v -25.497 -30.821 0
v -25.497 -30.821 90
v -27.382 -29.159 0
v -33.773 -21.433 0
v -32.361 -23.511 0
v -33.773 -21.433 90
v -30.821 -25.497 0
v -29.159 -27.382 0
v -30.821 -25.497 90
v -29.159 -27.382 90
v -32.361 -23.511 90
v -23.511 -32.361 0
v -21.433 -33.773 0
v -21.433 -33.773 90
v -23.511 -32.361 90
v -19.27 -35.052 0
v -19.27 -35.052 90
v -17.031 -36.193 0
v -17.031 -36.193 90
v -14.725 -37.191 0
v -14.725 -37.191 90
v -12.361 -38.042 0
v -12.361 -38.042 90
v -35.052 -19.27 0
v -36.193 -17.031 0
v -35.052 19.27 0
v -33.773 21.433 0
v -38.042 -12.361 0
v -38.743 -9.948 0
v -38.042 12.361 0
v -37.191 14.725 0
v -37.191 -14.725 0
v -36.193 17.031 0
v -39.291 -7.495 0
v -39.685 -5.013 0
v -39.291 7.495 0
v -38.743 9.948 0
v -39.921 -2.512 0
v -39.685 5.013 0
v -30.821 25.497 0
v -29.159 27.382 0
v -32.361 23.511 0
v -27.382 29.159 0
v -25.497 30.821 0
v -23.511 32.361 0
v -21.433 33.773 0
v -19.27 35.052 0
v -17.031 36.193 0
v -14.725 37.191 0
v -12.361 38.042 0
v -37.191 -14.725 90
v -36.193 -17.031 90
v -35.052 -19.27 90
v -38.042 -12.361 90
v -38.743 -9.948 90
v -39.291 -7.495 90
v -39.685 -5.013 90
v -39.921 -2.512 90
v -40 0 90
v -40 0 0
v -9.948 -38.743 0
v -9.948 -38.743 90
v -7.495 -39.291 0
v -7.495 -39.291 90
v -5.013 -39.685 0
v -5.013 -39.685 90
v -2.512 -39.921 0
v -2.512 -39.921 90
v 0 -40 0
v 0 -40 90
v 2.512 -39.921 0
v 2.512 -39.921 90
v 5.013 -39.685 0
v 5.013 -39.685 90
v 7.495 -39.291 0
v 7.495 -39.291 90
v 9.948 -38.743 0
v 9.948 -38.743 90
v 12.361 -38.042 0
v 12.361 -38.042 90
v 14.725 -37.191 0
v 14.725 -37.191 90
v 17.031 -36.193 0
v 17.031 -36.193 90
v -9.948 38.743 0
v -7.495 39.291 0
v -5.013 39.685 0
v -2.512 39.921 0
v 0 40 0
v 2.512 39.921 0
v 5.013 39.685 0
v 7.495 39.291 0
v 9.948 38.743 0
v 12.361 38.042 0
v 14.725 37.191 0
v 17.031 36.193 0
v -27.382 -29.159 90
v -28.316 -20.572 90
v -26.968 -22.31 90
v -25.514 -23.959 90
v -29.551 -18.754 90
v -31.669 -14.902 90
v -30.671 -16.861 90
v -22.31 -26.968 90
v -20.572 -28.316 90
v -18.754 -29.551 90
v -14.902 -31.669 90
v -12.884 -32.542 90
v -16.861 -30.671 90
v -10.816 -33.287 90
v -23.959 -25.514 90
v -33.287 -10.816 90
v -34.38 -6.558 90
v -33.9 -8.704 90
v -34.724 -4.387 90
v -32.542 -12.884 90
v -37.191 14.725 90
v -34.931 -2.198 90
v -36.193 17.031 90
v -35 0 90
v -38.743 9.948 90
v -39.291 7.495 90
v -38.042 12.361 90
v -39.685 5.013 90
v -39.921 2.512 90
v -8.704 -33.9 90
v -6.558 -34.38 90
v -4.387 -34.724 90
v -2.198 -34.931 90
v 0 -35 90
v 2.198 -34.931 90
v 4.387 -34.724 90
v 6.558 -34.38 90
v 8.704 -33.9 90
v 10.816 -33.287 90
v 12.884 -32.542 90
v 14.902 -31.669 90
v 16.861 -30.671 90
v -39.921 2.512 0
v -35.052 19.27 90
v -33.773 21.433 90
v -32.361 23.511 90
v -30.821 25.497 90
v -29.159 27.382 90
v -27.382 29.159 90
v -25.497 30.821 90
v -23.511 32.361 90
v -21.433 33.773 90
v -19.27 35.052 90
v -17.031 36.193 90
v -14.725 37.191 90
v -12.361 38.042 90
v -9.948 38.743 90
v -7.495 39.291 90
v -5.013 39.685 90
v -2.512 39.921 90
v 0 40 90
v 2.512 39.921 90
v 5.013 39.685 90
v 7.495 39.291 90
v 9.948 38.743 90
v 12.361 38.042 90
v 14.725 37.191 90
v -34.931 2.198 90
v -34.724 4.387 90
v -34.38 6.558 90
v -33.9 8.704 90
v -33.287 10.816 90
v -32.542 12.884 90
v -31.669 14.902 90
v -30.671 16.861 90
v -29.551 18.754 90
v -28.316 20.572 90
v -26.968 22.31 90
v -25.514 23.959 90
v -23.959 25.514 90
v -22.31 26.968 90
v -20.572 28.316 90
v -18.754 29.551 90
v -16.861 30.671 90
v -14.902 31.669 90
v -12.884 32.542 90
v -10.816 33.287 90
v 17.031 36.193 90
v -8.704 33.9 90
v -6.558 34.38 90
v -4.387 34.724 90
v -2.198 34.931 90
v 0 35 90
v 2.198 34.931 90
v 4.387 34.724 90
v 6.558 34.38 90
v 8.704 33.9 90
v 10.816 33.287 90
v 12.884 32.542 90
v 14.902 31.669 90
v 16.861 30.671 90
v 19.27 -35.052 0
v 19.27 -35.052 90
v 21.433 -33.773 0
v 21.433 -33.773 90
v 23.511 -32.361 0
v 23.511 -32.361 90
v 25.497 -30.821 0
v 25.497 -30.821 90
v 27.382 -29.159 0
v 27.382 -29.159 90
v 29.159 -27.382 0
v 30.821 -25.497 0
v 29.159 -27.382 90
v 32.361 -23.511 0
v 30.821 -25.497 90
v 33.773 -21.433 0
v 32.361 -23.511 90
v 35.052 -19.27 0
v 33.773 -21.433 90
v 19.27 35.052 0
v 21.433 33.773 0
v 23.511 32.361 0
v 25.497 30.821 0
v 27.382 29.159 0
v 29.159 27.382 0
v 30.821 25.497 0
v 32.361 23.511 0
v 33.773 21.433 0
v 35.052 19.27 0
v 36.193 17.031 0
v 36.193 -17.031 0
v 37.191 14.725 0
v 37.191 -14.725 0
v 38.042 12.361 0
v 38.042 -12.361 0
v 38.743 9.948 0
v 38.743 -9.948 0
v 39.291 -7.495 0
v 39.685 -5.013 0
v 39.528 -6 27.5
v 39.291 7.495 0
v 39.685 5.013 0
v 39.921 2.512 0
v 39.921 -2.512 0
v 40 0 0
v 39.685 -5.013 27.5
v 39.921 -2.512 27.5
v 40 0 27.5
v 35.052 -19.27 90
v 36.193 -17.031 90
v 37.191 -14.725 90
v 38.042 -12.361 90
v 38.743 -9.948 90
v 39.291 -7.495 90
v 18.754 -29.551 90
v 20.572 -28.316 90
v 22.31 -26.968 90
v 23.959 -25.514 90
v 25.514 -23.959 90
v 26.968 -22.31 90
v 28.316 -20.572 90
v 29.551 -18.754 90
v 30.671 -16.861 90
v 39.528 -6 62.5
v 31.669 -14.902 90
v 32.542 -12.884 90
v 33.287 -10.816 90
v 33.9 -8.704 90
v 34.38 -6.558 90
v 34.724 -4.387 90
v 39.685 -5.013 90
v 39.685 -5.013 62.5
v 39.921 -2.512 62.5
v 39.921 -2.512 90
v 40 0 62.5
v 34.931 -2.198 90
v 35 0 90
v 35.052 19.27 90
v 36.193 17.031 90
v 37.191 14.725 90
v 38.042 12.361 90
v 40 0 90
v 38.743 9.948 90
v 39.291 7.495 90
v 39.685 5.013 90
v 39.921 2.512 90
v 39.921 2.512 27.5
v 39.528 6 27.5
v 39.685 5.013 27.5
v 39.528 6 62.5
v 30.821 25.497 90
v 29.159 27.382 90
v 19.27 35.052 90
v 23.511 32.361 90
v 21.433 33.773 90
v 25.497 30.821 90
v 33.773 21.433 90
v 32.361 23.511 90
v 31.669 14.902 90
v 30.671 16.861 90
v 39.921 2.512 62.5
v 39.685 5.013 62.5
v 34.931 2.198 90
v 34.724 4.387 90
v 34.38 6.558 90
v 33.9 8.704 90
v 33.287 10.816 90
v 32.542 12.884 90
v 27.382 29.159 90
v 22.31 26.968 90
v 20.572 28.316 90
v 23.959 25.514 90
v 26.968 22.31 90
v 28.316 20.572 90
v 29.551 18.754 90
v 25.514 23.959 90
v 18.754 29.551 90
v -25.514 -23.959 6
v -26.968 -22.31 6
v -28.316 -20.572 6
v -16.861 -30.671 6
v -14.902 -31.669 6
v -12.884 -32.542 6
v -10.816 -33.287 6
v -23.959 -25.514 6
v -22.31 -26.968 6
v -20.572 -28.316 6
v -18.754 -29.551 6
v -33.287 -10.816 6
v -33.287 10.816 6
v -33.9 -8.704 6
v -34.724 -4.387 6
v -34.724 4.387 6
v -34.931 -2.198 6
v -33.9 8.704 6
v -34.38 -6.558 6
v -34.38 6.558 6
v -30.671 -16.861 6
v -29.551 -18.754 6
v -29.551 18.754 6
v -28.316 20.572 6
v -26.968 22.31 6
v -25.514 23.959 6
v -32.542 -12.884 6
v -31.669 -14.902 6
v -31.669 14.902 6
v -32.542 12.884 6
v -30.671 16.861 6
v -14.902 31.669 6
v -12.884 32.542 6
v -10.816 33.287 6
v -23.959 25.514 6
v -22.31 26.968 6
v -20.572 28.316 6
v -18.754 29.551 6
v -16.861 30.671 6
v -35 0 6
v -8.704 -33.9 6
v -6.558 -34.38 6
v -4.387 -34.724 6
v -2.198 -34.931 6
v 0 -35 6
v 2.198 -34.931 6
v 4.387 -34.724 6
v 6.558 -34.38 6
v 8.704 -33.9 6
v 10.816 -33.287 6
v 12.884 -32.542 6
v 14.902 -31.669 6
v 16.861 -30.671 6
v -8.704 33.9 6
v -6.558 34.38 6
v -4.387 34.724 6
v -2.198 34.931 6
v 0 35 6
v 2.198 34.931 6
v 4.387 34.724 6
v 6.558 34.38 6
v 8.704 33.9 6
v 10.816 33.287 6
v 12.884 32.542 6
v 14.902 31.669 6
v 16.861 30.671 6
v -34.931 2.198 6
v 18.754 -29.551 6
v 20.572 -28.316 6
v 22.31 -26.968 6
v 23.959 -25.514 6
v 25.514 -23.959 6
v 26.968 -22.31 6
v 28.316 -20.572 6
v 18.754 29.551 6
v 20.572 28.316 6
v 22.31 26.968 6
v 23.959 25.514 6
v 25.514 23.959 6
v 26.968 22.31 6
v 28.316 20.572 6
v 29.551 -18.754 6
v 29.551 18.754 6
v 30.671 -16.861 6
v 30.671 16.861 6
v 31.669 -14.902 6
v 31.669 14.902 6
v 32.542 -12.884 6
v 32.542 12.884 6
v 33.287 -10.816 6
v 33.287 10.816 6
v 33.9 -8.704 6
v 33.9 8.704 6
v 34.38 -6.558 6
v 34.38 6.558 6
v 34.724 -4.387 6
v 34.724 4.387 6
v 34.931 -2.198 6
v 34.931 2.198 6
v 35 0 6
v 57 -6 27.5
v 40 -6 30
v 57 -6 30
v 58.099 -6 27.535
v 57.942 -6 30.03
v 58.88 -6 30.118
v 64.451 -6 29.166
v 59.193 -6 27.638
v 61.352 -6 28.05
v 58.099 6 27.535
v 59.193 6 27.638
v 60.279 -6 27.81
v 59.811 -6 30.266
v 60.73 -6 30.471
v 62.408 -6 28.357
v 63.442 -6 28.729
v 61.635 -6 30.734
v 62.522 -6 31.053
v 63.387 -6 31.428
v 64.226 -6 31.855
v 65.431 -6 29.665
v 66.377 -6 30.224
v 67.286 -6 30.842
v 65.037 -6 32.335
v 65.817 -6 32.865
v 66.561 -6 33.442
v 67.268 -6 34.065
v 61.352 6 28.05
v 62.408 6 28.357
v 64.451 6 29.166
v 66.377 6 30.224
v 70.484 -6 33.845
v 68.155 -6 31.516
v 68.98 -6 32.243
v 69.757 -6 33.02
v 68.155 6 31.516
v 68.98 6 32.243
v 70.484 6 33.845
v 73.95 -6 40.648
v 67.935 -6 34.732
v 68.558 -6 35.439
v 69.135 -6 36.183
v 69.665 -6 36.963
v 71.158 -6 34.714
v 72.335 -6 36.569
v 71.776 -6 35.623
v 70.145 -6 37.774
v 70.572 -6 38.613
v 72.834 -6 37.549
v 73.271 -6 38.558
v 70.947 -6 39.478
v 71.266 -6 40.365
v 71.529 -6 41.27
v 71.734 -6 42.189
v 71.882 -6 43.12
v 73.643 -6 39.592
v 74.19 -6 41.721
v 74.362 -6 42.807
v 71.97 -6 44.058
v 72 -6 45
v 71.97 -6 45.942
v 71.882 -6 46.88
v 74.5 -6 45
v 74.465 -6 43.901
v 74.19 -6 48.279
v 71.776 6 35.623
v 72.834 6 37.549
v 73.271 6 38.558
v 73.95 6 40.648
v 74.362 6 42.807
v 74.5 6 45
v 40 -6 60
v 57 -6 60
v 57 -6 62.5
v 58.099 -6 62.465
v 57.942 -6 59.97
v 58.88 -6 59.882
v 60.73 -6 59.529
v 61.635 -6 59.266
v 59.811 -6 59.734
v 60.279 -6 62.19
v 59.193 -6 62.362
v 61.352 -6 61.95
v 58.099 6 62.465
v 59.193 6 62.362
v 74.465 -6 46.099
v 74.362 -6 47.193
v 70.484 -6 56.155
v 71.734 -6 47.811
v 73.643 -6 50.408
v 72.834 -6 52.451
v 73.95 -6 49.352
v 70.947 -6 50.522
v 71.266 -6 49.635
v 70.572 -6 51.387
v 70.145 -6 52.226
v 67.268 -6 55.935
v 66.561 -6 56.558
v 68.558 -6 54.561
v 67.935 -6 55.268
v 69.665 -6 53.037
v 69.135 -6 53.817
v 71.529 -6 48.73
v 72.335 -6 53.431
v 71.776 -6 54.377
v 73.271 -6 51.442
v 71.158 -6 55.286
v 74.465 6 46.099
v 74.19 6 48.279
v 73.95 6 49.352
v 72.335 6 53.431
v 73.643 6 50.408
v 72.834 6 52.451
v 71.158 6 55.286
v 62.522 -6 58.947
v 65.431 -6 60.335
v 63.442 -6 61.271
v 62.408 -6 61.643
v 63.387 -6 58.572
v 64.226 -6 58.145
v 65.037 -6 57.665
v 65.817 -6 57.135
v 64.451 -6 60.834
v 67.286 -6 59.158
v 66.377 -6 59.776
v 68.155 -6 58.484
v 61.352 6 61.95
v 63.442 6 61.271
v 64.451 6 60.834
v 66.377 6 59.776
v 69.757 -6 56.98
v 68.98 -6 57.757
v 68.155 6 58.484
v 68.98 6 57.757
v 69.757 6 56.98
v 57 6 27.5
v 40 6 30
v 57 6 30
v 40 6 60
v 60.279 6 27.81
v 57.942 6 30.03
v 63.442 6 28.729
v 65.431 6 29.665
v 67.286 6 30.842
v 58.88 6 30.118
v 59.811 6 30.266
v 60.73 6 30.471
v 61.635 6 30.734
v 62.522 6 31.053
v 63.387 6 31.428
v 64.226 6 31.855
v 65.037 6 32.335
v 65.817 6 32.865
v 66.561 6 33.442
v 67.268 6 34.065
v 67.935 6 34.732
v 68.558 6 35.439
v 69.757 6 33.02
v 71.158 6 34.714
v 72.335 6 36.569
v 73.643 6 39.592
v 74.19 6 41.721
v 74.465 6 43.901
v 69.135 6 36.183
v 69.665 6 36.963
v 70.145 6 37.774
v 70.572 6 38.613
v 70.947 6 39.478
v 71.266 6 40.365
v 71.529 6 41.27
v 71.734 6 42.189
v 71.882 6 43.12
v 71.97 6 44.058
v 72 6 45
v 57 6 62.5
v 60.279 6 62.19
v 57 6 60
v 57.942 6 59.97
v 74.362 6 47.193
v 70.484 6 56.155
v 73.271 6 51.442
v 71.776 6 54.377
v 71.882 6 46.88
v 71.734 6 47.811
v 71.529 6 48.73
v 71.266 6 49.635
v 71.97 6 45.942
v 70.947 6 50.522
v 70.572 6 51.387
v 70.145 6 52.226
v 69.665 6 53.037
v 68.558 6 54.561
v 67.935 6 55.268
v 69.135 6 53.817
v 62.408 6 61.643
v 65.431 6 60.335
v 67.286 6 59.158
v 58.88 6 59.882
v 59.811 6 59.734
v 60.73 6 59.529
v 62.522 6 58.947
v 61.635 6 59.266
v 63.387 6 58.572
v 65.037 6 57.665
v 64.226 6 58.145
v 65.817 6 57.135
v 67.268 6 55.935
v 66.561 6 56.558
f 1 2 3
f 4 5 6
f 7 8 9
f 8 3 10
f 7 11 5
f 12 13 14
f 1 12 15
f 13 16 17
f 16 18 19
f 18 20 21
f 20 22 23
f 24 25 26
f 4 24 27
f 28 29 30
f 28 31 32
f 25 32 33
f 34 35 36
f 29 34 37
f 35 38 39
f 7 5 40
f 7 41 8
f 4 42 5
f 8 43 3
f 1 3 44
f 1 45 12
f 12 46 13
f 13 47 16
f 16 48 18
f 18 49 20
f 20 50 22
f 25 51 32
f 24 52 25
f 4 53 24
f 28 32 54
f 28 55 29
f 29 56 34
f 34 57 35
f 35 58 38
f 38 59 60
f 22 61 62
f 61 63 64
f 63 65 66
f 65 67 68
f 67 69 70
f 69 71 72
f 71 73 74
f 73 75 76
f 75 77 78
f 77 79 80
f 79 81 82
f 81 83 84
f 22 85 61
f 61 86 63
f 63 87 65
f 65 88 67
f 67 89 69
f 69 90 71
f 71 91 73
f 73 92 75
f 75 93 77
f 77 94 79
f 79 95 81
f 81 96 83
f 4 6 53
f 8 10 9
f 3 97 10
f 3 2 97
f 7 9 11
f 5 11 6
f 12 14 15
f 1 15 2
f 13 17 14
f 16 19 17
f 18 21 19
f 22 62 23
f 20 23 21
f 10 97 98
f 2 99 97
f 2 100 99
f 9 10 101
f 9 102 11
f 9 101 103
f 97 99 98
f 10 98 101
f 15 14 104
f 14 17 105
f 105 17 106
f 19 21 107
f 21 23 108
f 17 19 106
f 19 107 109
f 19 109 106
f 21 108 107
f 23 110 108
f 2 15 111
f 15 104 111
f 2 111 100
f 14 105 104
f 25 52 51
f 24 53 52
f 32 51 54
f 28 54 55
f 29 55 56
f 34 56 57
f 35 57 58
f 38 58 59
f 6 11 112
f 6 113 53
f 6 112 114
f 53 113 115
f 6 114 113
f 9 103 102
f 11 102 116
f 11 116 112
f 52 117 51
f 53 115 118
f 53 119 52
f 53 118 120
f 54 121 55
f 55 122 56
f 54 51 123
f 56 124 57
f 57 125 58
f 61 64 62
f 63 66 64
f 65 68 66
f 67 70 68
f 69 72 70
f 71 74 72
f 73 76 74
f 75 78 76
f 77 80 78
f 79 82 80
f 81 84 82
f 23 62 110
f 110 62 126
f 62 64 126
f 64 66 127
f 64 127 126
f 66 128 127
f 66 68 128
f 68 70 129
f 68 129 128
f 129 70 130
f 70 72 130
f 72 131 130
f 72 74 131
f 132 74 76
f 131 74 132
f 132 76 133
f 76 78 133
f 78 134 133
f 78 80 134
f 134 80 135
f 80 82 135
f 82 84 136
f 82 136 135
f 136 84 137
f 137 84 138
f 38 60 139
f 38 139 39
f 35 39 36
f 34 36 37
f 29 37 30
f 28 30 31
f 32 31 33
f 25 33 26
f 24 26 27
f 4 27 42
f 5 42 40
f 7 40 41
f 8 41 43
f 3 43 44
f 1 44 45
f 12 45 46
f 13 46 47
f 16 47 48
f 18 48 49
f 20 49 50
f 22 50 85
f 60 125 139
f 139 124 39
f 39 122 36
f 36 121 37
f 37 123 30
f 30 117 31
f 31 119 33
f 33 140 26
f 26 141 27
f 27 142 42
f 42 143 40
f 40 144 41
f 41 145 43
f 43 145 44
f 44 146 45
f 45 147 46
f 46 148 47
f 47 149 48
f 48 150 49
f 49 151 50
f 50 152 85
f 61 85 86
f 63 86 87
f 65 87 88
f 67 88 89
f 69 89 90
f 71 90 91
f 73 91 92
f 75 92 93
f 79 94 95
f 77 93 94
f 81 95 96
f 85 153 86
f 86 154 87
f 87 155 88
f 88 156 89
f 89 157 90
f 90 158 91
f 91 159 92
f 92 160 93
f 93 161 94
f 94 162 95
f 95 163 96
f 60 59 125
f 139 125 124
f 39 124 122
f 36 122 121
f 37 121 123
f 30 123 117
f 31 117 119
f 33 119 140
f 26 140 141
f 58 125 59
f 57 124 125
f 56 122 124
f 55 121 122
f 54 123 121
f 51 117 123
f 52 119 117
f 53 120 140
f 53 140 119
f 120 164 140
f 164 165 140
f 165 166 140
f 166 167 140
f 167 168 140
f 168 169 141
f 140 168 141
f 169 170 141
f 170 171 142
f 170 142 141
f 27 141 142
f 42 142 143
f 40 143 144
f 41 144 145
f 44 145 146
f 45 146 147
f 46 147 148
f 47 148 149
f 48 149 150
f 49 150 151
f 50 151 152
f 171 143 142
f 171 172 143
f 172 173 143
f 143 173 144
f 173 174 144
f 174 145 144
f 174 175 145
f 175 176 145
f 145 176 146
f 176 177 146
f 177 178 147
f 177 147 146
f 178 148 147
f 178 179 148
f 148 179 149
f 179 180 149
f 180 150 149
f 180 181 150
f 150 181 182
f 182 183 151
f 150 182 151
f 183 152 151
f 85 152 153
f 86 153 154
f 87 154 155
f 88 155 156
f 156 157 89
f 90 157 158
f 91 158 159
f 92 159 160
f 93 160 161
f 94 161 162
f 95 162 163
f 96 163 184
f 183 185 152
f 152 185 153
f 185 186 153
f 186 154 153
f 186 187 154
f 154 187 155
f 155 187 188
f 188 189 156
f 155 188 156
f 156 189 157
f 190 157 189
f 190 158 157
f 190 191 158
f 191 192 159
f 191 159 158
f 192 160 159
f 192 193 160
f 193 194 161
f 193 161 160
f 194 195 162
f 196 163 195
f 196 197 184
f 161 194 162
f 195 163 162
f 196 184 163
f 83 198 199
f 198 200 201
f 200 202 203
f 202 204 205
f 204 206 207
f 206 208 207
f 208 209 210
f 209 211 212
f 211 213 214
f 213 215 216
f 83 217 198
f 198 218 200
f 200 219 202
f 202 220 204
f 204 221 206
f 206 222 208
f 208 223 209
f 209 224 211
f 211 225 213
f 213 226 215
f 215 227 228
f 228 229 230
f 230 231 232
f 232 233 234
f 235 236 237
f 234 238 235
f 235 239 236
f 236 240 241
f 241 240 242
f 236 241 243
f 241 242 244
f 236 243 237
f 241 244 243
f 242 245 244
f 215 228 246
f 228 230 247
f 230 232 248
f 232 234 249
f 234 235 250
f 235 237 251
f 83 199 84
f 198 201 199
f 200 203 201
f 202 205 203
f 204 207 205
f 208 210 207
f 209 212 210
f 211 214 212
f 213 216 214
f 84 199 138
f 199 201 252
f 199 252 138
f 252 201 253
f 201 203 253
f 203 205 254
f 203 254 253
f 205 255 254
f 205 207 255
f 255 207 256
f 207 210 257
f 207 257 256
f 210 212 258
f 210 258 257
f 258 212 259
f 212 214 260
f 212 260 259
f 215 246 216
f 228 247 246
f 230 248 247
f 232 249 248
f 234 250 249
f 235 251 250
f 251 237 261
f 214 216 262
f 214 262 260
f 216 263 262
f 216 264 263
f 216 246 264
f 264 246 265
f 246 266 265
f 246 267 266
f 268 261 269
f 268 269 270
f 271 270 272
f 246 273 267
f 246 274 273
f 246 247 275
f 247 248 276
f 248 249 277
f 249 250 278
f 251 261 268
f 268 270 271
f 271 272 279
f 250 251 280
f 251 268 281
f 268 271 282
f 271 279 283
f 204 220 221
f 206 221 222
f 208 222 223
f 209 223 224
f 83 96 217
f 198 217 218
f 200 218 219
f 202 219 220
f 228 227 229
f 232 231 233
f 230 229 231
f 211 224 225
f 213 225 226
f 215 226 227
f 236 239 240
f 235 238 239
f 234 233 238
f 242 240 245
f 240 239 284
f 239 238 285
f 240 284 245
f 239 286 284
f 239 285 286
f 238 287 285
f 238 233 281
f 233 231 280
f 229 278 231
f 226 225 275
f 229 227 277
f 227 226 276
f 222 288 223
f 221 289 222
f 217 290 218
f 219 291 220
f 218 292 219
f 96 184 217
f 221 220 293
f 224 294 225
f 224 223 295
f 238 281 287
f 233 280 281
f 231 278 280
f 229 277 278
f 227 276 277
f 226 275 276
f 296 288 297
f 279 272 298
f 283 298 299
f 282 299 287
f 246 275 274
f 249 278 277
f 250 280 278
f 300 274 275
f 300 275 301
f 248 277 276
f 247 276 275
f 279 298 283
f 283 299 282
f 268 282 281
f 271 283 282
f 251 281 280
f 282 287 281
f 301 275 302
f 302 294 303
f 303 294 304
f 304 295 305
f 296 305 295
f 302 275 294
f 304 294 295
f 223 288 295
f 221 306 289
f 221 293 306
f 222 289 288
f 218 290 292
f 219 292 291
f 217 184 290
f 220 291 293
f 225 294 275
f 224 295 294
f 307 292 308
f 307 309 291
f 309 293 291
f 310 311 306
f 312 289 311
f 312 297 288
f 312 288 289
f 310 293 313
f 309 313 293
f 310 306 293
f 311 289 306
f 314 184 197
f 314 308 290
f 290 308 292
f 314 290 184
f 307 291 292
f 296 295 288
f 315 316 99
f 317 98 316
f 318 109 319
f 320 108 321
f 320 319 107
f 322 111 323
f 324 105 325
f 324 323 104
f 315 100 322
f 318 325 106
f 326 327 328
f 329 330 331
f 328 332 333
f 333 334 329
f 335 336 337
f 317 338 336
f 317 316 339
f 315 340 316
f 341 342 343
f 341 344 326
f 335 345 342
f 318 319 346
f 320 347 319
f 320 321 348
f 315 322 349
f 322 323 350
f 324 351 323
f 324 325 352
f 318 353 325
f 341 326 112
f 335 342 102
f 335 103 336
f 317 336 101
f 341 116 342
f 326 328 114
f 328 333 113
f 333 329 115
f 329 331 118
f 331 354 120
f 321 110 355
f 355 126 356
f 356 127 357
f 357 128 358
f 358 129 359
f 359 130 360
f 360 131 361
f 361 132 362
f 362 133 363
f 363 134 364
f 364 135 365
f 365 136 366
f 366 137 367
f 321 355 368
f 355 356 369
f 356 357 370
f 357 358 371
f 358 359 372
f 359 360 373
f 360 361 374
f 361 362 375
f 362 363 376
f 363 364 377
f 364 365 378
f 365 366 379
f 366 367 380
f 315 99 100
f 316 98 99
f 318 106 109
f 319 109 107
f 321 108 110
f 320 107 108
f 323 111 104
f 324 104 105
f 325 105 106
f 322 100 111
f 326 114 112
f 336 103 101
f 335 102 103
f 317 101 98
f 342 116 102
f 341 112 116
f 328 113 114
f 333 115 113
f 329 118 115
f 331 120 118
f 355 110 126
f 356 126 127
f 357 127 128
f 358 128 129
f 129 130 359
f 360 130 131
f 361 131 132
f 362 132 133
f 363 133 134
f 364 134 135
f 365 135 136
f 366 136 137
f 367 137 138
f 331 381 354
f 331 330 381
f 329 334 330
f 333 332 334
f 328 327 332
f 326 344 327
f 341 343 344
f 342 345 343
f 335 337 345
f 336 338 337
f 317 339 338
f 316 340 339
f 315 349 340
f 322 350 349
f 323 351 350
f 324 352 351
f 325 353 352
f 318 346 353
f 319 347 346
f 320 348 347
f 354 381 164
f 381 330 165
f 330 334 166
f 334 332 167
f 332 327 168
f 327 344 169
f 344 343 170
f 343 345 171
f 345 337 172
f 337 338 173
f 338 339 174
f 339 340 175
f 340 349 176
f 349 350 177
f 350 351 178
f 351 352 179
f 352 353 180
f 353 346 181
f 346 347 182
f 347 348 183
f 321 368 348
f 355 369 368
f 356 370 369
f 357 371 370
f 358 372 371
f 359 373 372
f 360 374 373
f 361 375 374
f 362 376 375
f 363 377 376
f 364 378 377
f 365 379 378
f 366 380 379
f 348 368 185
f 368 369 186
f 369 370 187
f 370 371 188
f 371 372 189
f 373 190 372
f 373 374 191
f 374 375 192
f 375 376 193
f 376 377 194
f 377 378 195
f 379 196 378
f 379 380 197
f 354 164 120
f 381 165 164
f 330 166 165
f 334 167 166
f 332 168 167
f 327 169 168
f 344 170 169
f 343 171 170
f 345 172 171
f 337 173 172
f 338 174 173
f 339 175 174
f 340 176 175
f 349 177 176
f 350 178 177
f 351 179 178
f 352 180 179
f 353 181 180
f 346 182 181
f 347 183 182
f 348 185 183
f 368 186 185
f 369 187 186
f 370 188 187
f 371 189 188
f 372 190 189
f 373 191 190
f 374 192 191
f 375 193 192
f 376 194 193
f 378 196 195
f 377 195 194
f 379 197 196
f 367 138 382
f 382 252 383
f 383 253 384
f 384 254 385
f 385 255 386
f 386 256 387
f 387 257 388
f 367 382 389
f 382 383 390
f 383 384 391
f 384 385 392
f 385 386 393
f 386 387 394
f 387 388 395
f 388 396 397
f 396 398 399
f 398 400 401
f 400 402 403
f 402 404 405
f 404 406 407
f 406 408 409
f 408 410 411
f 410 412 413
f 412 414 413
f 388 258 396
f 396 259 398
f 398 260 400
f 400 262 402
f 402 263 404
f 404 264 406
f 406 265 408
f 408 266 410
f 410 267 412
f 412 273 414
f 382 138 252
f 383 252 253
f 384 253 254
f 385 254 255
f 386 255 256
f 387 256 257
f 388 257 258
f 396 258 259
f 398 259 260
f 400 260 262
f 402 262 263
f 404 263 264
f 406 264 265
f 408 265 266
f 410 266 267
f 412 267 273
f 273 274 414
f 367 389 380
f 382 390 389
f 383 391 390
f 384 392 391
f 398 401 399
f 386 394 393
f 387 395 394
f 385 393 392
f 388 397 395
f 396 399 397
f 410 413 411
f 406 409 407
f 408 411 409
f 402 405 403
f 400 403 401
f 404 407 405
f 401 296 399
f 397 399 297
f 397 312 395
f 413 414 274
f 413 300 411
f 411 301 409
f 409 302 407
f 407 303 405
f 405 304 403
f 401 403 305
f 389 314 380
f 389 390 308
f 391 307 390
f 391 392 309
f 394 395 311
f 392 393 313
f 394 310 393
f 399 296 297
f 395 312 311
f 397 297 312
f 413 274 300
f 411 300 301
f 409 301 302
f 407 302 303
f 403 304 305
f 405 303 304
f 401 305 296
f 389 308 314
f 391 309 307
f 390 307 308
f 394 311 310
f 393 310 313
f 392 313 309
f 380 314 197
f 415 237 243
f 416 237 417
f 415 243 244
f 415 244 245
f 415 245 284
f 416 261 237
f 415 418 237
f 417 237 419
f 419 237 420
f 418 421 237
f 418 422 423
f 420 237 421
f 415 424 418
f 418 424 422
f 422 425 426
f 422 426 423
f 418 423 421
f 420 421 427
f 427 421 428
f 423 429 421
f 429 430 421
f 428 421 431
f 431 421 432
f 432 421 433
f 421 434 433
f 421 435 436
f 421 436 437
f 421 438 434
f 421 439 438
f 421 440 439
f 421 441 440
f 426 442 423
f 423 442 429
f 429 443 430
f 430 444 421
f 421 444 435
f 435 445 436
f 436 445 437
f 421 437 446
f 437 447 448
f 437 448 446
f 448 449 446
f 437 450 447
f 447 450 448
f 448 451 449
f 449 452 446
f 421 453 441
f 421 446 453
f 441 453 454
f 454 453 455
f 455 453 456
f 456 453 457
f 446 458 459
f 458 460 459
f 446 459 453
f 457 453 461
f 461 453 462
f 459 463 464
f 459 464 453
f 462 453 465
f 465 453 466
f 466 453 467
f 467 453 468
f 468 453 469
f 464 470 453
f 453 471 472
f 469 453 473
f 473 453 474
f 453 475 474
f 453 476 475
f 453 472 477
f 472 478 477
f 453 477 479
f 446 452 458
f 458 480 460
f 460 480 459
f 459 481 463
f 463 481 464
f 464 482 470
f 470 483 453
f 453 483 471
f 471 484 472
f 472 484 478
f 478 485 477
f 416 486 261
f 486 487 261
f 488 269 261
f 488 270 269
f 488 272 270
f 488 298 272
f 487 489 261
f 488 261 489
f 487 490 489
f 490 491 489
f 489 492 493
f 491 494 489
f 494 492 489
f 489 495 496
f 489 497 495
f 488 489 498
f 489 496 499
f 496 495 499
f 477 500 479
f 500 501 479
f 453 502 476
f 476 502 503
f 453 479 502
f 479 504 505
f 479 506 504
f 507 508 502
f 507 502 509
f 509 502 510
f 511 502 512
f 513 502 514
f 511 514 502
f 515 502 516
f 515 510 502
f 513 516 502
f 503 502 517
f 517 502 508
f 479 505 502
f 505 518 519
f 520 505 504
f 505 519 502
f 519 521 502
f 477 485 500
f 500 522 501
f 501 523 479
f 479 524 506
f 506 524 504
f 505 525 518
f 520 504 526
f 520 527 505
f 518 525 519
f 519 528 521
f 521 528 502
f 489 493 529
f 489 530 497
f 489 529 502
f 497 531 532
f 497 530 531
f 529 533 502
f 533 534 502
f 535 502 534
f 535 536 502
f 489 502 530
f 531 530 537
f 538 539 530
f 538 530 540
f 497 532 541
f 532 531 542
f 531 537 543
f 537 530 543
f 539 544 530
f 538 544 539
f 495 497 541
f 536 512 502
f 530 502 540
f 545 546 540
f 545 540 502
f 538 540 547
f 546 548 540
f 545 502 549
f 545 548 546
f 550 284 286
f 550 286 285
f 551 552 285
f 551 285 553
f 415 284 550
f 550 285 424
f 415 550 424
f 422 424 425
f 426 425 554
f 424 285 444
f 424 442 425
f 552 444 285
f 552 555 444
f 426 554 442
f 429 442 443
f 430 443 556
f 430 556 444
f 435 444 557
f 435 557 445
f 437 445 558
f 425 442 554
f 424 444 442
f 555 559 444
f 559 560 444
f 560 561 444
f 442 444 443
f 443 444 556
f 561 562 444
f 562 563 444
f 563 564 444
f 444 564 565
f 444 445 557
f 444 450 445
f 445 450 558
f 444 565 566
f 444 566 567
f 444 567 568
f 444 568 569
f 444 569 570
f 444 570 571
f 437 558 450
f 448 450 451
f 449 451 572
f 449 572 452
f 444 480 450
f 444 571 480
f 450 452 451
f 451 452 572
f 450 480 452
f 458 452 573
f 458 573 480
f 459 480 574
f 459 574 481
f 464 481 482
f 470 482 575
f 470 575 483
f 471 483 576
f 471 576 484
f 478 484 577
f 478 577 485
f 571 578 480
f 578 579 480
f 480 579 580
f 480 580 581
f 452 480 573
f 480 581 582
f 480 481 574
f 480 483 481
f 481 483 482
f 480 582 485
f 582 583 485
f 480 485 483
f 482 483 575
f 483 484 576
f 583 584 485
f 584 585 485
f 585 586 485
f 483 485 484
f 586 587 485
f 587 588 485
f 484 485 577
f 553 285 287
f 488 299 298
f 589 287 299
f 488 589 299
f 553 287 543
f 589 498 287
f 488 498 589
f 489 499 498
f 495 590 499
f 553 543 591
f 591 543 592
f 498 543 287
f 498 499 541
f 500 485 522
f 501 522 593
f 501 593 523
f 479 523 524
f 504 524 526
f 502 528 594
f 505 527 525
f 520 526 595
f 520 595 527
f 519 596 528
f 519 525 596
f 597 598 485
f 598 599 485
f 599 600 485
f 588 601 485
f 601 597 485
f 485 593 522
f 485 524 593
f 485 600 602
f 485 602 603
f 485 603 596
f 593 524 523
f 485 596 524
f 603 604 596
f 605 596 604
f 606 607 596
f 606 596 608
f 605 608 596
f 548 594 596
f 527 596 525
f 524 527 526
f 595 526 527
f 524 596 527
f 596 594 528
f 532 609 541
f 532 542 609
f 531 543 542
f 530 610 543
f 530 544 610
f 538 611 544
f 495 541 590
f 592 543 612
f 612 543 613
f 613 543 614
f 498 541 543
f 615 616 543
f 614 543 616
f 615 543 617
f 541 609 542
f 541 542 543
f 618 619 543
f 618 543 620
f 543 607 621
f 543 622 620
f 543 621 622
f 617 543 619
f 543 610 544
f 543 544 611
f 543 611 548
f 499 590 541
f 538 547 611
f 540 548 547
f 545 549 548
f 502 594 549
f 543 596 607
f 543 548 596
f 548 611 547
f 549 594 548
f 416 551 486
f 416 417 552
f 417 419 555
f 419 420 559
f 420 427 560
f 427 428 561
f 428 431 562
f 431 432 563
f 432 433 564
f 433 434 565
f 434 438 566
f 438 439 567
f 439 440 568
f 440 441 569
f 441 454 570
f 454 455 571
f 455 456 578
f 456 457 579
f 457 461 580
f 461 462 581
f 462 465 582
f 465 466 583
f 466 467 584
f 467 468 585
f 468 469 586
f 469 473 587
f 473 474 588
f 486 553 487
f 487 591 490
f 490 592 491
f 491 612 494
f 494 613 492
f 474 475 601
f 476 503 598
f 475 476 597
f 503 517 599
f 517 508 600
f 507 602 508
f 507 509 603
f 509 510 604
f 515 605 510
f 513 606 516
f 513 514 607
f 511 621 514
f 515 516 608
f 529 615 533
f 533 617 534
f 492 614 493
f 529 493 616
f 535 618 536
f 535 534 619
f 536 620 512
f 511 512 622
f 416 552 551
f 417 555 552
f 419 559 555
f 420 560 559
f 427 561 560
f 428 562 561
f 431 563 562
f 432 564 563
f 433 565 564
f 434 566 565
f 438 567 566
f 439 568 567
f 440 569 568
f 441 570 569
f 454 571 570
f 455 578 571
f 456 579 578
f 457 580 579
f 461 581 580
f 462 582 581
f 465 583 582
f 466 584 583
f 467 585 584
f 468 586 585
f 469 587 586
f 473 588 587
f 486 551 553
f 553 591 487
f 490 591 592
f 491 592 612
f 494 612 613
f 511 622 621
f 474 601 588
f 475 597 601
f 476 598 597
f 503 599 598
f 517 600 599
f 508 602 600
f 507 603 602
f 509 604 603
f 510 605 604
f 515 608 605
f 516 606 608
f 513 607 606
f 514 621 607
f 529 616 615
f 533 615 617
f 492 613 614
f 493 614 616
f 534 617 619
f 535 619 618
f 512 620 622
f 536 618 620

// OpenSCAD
$fn = 100;

// マグカップ本体
union() {
    difference() {
        // 外側の円筒
        cylinder(h = 90, r = 40, center = false);
        // 内側をくり抜く
        translate([0, 0, 6])
            cylinder(h = 90, r = 35, center = false);
    }

    // 取手（+X方向）
    translate([37, 0, 45]) {
        difference() {
            // 取手の外側形状（D字型）
            hull() {
                // 本体側の接続部分（太めにして確実に接続）
                translate([0, -6, -17.5])
                    cube([6, 12, 35]);
                // 外側の半円部分
                translate([20, 0, 0])
                    rotate([90, 0, 0])
                        cylinder(h = 12, r = 17.5, center = true);
            }
            // 取手の内側をくり抜く（高さ30mm × 幅25mm）
            hull() {
                translate([3, -7, -15])
                    cube([1, 14, 30]);
                translate([20, 0, 0])
                    rotate([90, 0, 0])
                        cylinder(h = 14, r = 15, center = true);
            }
        }
    }
}
